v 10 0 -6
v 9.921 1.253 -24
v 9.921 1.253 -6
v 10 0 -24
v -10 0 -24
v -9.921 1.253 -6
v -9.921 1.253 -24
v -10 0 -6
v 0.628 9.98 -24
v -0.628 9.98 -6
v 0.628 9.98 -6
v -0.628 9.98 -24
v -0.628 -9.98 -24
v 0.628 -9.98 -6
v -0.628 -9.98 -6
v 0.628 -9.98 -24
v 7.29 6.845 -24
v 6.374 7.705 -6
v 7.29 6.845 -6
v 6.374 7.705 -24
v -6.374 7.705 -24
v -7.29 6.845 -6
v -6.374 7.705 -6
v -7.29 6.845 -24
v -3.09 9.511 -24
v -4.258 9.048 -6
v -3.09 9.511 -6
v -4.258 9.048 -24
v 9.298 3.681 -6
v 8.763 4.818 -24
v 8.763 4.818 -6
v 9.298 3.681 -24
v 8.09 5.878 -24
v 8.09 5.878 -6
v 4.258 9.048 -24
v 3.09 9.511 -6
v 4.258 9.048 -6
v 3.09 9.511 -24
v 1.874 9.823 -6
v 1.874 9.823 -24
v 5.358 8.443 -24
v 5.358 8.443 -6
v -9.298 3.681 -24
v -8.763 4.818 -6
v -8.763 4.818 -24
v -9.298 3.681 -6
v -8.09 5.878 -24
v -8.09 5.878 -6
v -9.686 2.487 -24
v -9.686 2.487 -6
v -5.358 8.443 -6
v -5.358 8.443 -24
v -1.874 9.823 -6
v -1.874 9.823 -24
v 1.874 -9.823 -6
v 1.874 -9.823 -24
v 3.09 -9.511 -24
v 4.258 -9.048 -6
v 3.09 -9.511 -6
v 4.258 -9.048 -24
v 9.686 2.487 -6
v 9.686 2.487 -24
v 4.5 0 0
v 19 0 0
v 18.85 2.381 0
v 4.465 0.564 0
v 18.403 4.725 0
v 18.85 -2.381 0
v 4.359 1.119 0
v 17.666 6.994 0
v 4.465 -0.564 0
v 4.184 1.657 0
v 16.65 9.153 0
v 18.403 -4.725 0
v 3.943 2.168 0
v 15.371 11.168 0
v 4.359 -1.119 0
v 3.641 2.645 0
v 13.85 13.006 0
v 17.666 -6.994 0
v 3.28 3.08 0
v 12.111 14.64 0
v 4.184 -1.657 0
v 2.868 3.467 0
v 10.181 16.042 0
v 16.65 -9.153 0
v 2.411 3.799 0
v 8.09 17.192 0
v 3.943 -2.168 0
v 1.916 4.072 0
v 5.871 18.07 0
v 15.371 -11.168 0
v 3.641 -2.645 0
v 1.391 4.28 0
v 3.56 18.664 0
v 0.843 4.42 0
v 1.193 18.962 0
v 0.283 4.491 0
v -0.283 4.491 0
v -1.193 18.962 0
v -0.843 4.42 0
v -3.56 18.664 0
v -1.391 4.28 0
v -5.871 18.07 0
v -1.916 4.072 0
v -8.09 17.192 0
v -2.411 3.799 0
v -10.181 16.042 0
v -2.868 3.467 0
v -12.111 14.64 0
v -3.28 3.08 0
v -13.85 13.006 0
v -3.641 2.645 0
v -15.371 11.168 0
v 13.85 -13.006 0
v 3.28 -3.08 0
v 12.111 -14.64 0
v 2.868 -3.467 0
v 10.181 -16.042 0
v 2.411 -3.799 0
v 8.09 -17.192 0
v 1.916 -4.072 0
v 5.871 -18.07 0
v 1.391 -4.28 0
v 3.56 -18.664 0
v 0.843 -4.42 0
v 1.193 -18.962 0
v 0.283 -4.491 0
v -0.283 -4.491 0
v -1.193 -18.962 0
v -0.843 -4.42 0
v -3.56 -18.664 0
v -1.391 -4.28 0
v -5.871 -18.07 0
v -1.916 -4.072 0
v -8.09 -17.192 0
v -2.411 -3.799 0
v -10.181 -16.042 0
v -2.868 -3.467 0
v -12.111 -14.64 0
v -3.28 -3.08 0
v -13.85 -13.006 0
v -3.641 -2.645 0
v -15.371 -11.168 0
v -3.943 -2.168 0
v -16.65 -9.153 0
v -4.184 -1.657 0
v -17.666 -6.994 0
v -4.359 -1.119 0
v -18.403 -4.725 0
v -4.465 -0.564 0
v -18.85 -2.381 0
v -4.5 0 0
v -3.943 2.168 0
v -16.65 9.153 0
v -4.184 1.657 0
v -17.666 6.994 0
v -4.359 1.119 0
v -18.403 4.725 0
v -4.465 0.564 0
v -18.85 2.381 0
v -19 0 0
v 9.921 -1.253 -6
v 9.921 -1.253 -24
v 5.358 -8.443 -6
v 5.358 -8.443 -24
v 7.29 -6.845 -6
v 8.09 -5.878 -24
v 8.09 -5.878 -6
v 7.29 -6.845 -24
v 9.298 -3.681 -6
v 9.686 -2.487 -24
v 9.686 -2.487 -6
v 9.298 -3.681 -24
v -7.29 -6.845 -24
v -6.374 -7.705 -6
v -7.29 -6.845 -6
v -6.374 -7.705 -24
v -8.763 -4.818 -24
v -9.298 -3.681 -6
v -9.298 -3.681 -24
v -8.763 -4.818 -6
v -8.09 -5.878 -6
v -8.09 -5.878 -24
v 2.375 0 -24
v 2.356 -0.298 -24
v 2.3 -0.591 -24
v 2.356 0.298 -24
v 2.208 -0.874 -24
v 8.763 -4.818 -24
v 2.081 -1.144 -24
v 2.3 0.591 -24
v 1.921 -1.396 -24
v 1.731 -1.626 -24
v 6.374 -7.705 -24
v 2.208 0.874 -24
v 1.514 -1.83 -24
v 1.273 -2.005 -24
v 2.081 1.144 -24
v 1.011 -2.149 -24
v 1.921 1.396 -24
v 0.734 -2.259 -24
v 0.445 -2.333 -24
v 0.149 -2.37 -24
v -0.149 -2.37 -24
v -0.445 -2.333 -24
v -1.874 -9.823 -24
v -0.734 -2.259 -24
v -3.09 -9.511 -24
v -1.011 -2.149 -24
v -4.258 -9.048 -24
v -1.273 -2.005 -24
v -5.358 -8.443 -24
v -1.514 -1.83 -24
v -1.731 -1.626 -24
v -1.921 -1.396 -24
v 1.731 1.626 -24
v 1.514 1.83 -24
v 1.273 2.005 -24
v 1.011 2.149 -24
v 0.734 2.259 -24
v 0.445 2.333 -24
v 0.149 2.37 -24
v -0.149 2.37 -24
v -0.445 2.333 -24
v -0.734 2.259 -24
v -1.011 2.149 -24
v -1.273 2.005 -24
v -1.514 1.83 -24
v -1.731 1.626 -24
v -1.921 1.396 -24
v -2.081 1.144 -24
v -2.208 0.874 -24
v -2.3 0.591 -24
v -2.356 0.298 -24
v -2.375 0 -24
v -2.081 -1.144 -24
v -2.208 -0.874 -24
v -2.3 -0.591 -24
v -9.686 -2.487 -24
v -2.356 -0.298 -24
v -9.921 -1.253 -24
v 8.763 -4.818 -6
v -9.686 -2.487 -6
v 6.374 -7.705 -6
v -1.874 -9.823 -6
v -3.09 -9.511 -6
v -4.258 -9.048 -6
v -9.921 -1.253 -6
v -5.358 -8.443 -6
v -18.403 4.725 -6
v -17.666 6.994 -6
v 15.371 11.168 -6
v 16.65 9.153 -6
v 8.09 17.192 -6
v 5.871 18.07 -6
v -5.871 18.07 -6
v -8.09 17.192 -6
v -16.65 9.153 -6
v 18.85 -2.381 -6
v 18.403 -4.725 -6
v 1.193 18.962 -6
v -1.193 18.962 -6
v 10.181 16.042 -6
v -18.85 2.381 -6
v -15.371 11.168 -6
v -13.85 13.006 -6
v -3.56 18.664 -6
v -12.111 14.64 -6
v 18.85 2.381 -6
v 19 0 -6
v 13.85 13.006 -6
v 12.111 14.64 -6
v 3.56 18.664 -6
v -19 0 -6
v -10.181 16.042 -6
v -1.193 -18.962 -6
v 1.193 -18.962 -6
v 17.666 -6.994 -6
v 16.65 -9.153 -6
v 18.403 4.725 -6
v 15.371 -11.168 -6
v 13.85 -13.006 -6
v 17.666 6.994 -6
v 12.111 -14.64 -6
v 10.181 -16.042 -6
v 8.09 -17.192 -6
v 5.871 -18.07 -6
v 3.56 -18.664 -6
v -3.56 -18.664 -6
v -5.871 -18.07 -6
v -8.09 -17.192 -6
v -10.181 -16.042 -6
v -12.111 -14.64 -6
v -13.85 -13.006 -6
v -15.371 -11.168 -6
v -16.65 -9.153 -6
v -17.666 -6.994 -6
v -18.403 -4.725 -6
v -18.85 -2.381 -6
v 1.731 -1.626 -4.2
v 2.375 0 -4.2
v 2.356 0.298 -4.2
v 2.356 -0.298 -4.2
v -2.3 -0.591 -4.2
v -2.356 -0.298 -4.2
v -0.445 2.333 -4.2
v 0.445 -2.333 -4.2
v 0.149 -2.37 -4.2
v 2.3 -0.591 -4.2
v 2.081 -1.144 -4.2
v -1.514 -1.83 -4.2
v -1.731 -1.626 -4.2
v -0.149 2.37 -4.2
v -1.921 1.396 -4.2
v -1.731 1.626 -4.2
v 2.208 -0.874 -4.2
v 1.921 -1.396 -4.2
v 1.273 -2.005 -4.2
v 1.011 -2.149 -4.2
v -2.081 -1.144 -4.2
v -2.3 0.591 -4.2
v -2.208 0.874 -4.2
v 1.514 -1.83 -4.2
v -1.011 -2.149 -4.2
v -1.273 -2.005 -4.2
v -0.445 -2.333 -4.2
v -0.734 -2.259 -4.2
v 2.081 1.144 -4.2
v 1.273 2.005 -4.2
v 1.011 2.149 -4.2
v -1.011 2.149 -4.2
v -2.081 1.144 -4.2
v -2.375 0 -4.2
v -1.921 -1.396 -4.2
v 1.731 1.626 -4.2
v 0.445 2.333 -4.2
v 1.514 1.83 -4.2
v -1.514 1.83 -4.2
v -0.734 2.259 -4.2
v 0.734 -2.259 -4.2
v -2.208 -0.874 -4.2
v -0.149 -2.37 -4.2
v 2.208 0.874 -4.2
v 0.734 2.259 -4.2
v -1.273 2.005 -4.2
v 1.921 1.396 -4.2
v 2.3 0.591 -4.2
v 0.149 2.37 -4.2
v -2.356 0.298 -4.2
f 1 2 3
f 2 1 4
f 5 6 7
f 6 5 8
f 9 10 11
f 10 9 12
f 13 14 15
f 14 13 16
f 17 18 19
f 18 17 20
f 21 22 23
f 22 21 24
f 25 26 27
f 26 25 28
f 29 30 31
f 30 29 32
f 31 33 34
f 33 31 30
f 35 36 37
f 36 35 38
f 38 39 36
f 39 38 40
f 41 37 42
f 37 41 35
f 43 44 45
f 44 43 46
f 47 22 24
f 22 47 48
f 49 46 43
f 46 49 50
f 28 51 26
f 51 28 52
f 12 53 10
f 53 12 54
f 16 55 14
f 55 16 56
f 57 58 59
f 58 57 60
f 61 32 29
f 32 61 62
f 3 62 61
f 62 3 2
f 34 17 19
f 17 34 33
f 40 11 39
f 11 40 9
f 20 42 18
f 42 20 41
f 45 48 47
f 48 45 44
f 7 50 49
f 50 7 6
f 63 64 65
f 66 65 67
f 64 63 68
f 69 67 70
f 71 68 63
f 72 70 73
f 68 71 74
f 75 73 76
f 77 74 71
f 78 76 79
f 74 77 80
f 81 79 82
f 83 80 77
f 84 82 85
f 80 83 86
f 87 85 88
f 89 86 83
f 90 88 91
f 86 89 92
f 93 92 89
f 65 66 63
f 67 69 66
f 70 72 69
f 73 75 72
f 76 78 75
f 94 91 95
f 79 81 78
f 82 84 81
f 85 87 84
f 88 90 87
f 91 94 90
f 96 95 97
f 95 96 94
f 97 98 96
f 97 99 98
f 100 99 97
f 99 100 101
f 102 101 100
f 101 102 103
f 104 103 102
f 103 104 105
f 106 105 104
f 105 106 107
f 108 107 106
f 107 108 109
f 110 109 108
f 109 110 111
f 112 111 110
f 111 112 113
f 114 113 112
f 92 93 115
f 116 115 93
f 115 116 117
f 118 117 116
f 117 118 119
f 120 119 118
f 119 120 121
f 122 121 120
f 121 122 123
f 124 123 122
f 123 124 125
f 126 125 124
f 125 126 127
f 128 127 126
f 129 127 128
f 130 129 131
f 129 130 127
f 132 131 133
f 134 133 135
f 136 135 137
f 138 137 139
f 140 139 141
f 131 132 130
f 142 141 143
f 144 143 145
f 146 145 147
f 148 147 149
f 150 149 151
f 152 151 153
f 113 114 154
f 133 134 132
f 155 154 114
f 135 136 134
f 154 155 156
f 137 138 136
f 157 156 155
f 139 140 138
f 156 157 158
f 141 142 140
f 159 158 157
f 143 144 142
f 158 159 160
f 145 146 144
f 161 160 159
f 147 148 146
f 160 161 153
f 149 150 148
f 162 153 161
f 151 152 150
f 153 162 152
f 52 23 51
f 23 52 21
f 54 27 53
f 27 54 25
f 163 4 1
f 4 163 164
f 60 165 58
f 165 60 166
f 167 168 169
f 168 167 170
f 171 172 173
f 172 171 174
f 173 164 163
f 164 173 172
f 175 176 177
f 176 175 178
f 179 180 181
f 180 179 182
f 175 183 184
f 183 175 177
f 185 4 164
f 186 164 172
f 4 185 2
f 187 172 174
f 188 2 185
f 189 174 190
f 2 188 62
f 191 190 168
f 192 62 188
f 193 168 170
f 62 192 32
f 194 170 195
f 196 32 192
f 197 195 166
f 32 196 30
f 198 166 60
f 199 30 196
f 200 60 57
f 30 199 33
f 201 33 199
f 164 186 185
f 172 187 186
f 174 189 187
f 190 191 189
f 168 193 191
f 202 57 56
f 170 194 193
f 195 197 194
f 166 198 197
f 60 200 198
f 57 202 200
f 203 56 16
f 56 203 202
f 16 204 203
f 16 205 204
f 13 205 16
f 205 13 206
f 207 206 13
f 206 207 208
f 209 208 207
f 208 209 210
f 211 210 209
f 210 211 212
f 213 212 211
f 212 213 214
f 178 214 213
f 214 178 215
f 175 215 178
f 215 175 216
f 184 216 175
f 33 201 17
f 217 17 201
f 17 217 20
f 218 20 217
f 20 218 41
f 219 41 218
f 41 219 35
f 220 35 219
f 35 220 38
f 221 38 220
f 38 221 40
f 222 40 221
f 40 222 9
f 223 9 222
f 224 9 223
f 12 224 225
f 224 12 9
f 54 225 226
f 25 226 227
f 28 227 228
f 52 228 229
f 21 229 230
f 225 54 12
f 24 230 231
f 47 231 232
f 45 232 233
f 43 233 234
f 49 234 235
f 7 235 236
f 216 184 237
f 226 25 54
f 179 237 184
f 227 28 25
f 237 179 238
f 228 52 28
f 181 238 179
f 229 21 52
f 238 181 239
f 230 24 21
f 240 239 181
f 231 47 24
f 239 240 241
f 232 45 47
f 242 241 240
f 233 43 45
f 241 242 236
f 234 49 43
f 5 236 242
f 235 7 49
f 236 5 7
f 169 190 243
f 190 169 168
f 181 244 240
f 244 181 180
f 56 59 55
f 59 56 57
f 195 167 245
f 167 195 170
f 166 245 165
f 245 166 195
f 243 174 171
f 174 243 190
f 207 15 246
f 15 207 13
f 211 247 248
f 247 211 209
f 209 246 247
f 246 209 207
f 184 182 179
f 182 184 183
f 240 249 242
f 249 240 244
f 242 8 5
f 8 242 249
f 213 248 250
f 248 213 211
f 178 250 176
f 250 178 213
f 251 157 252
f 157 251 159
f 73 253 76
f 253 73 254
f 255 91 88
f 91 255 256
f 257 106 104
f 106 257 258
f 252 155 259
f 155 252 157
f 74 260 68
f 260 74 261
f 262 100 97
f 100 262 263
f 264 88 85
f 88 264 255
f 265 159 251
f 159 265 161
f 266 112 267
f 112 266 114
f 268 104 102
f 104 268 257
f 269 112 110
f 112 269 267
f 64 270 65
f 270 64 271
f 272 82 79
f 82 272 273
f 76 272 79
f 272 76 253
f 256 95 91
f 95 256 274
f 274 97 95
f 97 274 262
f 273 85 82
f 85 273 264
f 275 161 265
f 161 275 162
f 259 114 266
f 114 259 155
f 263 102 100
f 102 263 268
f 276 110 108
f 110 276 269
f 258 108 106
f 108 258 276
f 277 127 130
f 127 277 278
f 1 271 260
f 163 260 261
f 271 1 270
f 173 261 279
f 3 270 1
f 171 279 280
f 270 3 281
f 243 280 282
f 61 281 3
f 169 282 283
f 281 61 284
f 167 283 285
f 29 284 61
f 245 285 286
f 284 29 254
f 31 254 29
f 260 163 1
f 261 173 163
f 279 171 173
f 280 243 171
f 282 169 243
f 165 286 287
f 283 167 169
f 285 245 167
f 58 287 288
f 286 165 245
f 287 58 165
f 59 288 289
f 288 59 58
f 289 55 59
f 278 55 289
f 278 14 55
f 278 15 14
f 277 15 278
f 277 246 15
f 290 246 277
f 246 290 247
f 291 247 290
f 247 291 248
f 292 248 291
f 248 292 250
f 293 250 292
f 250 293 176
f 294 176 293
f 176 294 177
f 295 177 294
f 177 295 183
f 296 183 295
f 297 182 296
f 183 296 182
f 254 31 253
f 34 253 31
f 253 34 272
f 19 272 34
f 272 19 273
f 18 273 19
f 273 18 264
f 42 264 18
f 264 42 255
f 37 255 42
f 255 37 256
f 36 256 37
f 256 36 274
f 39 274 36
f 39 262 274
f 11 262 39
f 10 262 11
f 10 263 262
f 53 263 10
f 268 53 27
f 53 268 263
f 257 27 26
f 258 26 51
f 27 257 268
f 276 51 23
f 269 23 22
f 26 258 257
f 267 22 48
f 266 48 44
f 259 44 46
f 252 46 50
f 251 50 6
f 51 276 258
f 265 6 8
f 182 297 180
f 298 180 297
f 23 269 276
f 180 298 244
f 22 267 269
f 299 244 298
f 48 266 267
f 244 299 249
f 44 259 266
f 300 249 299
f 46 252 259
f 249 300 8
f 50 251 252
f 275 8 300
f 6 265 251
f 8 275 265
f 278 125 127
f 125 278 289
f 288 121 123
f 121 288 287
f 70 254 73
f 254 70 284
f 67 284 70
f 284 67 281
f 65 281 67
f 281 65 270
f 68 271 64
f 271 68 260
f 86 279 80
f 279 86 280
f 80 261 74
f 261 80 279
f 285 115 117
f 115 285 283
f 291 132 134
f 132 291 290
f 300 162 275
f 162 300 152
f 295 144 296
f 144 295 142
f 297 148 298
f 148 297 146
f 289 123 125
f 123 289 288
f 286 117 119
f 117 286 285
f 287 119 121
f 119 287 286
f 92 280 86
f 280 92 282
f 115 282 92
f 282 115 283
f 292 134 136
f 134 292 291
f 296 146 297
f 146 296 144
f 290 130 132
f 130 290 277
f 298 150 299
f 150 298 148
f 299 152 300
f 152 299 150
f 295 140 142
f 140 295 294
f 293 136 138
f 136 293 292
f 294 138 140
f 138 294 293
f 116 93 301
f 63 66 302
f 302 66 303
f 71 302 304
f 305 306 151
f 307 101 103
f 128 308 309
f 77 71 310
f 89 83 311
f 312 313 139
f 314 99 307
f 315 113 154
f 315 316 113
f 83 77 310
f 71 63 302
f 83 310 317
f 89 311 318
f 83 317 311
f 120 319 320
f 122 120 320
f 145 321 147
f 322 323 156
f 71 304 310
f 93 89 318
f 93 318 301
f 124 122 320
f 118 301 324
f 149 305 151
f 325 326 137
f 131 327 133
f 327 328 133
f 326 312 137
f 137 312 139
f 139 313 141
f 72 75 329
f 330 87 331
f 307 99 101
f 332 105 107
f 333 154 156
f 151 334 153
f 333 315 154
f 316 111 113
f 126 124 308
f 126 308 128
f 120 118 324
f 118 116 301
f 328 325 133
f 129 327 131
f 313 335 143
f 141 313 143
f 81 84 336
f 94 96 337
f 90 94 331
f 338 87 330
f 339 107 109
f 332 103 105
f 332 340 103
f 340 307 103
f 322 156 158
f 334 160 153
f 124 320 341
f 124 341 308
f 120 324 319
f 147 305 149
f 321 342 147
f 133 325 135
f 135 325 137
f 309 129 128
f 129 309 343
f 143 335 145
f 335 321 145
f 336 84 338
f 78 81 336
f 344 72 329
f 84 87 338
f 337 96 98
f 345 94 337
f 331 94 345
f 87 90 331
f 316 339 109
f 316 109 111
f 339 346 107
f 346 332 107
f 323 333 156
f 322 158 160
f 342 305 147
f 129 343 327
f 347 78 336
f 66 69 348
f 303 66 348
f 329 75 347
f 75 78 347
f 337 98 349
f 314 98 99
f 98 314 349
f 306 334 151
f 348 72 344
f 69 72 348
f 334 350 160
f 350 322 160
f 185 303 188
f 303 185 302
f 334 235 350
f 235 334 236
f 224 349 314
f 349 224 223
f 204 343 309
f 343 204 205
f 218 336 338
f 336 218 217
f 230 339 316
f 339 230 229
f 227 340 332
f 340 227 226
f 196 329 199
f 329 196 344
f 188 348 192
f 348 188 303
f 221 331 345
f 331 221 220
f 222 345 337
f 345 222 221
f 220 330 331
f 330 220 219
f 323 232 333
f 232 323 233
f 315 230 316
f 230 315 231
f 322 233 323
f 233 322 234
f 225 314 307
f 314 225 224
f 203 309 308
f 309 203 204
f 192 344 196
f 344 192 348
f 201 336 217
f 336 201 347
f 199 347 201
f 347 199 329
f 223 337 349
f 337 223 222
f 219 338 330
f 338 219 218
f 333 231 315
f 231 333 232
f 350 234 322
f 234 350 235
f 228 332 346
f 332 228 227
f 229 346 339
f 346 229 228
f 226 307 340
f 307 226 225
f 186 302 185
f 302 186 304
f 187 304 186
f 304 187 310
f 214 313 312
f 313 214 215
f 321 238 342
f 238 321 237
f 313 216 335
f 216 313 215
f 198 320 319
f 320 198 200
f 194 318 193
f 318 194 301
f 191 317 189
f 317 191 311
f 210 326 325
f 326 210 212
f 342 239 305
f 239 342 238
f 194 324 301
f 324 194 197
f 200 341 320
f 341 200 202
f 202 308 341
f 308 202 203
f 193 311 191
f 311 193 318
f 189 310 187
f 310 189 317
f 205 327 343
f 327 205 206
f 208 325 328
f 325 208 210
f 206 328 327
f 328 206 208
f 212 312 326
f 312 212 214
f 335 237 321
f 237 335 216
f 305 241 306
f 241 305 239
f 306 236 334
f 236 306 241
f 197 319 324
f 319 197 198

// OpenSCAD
$fn = 50;


difference() {
	union() {
		translate(v = [0, 0, -24.0000000000]) {
			cylinder(h = 24, r = 10.0000000000);
		}
		translate(v = [0, 0, -6.0000000000]) {
			cylinder(h = 6, r = 19.0000000000);
		}
	}
	union() {
		translate(v = [0, 0, 0]) {
			rotate(a = [0, 0, 0]) {
				difference() {
					union() {
						#translate(v = [0, 0, -24.0000000000]) {
							cylinder(h = 24, r = 2.2500000000);
						}
						#translate(v = [0, 0, -4.2000000000]) {
							cylinder(h = 4.2000000000, r1 = 2.3750000000, r2 = 4.5000000000);
						}
						#translate(v = [0, 0, -24.0000000000]) {
							cylinder(h = 24, r = 2.3750000000);
						}
						#translate(v = [0, 0, -24.0000000000]) {
							cylinder(h = 24, r = 2.2500000000);
						}
					}
					union();
				}
			}
		}
	}
}
